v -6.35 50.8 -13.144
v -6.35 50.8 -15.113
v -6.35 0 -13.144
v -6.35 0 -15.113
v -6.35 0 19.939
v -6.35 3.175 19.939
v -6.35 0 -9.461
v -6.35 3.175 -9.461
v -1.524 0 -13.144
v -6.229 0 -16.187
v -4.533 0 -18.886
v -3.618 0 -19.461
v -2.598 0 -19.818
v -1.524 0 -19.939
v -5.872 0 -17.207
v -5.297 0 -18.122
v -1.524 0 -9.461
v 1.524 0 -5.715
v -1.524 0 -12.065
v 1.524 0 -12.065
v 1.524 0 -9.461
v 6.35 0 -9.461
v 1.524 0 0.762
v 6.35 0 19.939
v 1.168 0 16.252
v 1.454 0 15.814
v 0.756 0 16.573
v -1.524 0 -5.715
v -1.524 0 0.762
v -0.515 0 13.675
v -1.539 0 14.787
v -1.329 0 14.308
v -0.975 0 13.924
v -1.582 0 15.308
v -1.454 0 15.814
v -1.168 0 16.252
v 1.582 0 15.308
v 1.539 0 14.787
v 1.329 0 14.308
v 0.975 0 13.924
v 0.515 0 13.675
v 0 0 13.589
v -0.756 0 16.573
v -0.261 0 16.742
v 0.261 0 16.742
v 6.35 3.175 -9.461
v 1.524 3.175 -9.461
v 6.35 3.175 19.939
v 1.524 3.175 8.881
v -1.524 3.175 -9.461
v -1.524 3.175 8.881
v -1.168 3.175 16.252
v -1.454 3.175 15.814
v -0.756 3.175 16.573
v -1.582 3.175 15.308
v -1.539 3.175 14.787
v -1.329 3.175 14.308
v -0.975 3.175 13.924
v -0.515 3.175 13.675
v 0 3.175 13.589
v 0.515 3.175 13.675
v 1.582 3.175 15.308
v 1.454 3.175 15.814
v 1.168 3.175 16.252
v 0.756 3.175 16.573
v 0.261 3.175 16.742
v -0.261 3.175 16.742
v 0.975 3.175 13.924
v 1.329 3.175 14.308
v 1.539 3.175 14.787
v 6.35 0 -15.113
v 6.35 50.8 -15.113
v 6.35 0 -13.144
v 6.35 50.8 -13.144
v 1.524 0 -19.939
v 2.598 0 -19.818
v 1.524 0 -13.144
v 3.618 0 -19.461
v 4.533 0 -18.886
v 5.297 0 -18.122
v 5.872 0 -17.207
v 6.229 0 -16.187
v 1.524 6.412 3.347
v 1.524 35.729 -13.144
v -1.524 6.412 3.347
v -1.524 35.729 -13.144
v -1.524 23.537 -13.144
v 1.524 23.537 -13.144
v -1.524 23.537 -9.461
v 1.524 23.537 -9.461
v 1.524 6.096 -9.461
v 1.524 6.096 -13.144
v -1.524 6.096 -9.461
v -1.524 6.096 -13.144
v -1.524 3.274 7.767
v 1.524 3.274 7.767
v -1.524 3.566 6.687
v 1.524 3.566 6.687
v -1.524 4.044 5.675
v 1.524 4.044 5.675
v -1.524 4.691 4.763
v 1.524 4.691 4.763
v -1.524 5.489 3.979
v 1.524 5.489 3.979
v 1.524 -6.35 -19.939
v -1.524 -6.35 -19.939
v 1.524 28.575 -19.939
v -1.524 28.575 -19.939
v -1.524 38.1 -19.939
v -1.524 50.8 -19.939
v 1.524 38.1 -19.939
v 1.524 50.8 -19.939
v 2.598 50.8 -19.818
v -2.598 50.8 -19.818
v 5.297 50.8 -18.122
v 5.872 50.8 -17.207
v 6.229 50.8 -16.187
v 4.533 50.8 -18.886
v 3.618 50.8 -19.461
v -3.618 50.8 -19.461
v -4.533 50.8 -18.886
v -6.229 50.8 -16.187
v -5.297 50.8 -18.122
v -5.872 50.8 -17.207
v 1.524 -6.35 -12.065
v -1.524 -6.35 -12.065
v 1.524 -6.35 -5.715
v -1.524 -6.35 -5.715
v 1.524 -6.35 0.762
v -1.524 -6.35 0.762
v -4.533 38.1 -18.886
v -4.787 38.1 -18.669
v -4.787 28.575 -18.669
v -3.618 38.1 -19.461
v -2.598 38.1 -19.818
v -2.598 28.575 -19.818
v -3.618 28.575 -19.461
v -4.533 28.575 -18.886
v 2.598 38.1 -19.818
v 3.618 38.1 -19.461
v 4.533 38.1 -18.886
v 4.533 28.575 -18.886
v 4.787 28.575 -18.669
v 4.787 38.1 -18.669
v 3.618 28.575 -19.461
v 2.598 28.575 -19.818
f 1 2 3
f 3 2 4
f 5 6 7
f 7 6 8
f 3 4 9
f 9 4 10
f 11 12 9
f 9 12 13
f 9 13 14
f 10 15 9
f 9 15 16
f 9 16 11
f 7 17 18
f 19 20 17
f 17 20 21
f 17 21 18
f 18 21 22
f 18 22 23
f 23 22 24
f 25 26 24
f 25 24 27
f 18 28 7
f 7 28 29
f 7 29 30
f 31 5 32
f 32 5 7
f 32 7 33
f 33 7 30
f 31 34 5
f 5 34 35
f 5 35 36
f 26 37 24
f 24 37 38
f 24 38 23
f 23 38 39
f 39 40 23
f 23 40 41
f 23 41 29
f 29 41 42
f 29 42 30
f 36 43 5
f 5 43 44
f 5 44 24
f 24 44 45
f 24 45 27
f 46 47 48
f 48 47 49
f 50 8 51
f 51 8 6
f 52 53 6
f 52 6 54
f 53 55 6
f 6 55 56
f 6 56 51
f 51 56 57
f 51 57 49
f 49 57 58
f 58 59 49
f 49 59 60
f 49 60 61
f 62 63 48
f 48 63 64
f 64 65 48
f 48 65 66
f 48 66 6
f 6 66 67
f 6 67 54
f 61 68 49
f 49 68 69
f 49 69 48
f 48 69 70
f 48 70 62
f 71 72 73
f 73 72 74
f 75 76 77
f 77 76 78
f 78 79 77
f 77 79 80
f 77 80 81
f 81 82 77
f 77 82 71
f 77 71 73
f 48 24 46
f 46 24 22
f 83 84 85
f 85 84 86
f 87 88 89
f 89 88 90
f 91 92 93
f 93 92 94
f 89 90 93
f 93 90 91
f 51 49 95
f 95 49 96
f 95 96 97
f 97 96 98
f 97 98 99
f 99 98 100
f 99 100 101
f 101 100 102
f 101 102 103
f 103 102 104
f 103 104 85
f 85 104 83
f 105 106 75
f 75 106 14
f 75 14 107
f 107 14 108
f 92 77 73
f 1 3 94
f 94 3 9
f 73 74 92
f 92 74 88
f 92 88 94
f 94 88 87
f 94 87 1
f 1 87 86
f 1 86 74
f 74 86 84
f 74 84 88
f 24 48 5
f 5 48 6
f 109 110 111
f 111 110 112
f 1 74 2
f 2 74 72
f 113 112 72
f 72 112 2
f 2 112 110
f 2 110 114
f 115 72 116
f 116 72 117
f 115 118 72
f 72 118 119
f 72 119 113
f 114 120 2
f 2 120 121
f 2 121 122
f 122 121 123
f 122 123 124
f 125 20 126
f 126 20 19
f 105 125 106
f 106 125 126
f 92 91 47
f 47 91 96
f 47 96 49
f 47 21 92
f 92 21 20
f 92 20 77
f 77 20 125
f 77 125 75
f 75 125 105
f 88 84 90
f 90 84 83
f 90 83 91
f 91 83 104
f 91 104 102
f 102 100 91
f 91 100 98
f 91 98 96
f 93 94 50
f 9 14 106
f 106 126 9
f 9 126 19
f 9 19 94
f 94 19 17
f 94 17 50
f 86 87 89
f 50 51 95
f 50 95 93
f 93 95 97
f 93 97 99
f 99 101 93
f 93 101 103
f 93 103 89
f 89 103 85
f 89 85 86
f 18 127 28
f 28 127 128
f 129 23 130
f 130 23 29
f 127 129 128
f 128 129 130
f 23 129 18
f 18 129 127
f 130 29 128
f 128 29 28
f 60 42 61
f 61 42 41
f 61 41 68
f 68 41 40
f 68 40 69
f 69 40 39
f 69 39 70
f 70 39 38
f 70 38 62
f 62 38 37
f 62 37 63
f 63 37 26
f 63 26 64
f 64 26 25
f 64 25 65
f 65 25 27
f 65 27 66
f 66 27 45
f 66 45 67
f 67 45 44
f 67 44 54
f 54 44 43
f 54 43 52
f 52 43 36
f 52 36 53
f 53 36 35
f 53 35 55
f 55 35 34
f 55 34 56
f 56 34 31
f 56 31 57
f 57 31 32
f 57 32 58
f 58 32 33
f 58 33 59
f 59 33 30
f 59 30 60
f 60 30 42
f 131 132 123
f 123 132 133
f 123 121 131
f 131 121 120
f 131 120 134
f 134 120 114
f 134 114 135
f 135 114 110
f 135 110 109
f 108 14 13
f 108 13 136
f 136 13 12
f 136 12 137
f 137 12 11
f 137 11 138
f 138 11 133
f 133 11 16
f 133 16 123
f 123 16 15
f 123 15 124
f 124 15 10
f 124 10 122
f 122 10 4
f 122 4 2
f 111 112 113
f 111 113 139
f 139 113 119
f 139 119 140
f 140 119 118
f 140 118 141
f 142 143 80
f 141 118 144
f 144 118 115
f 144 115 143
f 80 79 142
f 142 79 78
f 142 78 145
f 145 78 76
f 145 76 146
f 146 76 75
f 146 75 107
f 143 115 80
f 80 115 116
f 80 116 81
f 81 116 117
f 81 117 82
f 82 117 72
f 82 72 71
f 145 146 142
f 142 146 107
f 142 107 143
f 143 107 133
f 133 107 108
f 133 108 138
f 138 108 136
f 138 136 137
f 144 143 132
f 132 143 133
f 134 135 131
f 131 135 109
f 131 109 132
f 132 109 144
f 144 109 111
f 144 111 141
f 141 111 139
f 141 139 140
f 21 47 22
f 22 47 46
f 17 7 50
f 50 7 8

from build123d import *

# Parameters (mm, degrees)
BOSS_EXTRUDE1_DEPTH     = 6.35
SKETCH1_4_W             = 3.683
SKETCH1_4_H             = 17.441333418
CUT_EXTRUDE2_DEPTH      = 7.35
CUT_EXTRUDE2_DEPTH_BACK = 7.35
SKETCH1_3_W             = 6.477
SKETCH1_3_H             = 6.35
BOSS_EXTRUDE2_DEPTH     = 1.524
SKETCH2_R               = 1.5875
CUT_EXTRUDE1_DEPTH      = 51.8
FILLET1_R               = 4.826
FILLET2_R               = 6.35
SKETCH3_W               = 1.27
SKETCH3_H               = 9.525
CUT_EXTRUDE3_DEPTH      = 7.35
CUT_EXTRUDE3_DEPTH_BACK = 7.35
SKETCH4_W               = 4.826
SKETCH4_H               = 33.0835
CUT_EXTRUDE5_DEPTH      = 47.625
SKETCH5_W               = 3.683
SKETCH5_H               = 6.096
CUT_EXTRUDE6_DEPTH      = 4.826
CUT_EXTRUDE7_START      = -12.7
SKETCH5_2_W             = 3.683
SKETCH5_2_H             = 6.096
CUT_EXTRUDE7_DEPTH      = 4.826


with BuildPart() as part:
    # Sketch1 → Boss-Extrude1 (new body, symmetric)
    with BuildSketch(Plane(origin=(0, 0, 0), x_dir=(0, 0, -1), z_dir=(1, 0, 0))):
        Polygon((-19.939, 3.175), (-19.939, 0), (19.939, 0), (19.939, 50.8), (13.1445, 50.8), (13.1445, 35.729333418), (-5.167312548, 3.175), align=None)
    extrude(amount=BOSS_EXTRUDE1_DEPTH, both=True)

    # Sketch1<4> → Cut-Extrude2 (cut, two sides)
    with BuildSketch(Plane(origin=(0, 0, 0), x_dir=(0, 0, -1), z_dir=(1, 0, 0))) as cut_extrude2_sk:
        with Locations((11.303, 14.816666709)):
            Rectangle(SKETCH1_4_W, SKETCH1_4_H)
    extrude(amount=CUT_EXTRUDE2_DEPTH, mode=Mode.SUBTRACT)
    extrude(cut_extrude2_sk.sketch, amount=-CUT_EXTRUDE2_DEPTH_BACK, mode=Mode.SUBTRACT)

    # Sketch1<3> → Boss-Extrude2 (add, symmetric)
    with BuildSketch(Plane(origin=(0, 0, 0), x_dir=(0, 0, -1), z_dir=(1, 0, 0))):
        Polygon((13.1445, 0), (12.065, 0), (12.065, -6.35), (19.939, -6.35), (19.939, 0), align=None)
        with Locations((2.4765, -3.175)):
            Rectangle(SKETCH1_3_W, SKETCH1_3_H)
    extrude(amount=BOSS_EXTRUDE2_DEPTH, both=True)

    # Sketch2 → Cut-Extrude1 (cut, through all)
    with BuildSketch(Plane.XZ):
        with Locations((0, 15.1765)):
            Circle(SKETCH2_R)
    extrude(amount=-CUT_EXTRUDE1_DEPTH, mode=Mode.SUBTRACT)

    # Fillet1
    fillet1_edges = [part.edges().sort_by_distance(p)[0] for p in [
        (-6.35, 25.4, -19.939),
        (6.35, 25.4, -19.939),
    ]]
    fillet(fillet1_edges, radius=FILLET1_R)

    # Fillet2
    fillet2_edges = [part.edges().sort_by_distance(p)[0] for p in [
        (0, 3.175, 5.167312548),
    ]]
    fillet(fillet2_edges, radius=FILLET2_R)

    # Sketch3 → Cut-Extrude3 (cut, two sides)
    with BuildSketch(Plane(origin=(0, 0, 0), x_dir=(0, 0, -1), z_dir=(1, 0, 0))) as cut_extrude3_sk:
        with Locations((19.304, 33.3375)):
            Rectangle(SKETCH3_W, SKETCH3_H)
    extrude(amount=CUT_EXTRUDE3_DEPTH, mode=Mode.SUBTRACT)
    extrude(cut_extrude3_sk.sketch, amount=-CUT_EXTRUDE3_DEPTH_BACK, mode=Mode.SUBTRACT)

    # Sketch4 → Cut-Extrude5 (cut)
    with BuildSketch(Plane(origin=(0, 50.8, 0), x_dir=(1, 0, 0), z_dir=(0, 1, 0))):
        with Locations((-3.937, -3.39725)):
            Rectangle(SKETCH4_W, SKETCH4_H)
        with Locations((3.937, -3.39725)):
            Rectangle(SKETCH4_W, SKETCH4_H)
    extrude(amount=-CUT_EXTRUDE5_DEPTH, mode=Mode.SUBTRACT)

    # Sketch5 → Cut-Extrude6 (cut)
    with BuildSketch(Plane(origin=(6.35, 0, 0), x_dir=(0, 0, -1), z_dir=(1, 0, 0))):
        with Locations((11.303, 3.048)):
            Rectangle(SKETCH5_W, SKETCH5_H)
    extrude(amount=-CUT_EXTRUDE6_DEPTH, mode=Mode.SUBTRACT)

    # Sketch5<2> → Cut-Extrude7 (cut)
    with BuildSketch(Plane(origin=(6.35, 0, 0), x_dir=(0, 0, -1), z_dir=(1, 0, 0)).offset(CUT_EXTRUDE7_START)):
        with Locations((11.303, 3.048)):
            Rectangle(SKETCH5_2_W, SKETCH5_2_H)
    extrude(amount=CUT_EXTRUDE7_DEPTH, mode=Mode.SUBTRACT)


solid = part.part
